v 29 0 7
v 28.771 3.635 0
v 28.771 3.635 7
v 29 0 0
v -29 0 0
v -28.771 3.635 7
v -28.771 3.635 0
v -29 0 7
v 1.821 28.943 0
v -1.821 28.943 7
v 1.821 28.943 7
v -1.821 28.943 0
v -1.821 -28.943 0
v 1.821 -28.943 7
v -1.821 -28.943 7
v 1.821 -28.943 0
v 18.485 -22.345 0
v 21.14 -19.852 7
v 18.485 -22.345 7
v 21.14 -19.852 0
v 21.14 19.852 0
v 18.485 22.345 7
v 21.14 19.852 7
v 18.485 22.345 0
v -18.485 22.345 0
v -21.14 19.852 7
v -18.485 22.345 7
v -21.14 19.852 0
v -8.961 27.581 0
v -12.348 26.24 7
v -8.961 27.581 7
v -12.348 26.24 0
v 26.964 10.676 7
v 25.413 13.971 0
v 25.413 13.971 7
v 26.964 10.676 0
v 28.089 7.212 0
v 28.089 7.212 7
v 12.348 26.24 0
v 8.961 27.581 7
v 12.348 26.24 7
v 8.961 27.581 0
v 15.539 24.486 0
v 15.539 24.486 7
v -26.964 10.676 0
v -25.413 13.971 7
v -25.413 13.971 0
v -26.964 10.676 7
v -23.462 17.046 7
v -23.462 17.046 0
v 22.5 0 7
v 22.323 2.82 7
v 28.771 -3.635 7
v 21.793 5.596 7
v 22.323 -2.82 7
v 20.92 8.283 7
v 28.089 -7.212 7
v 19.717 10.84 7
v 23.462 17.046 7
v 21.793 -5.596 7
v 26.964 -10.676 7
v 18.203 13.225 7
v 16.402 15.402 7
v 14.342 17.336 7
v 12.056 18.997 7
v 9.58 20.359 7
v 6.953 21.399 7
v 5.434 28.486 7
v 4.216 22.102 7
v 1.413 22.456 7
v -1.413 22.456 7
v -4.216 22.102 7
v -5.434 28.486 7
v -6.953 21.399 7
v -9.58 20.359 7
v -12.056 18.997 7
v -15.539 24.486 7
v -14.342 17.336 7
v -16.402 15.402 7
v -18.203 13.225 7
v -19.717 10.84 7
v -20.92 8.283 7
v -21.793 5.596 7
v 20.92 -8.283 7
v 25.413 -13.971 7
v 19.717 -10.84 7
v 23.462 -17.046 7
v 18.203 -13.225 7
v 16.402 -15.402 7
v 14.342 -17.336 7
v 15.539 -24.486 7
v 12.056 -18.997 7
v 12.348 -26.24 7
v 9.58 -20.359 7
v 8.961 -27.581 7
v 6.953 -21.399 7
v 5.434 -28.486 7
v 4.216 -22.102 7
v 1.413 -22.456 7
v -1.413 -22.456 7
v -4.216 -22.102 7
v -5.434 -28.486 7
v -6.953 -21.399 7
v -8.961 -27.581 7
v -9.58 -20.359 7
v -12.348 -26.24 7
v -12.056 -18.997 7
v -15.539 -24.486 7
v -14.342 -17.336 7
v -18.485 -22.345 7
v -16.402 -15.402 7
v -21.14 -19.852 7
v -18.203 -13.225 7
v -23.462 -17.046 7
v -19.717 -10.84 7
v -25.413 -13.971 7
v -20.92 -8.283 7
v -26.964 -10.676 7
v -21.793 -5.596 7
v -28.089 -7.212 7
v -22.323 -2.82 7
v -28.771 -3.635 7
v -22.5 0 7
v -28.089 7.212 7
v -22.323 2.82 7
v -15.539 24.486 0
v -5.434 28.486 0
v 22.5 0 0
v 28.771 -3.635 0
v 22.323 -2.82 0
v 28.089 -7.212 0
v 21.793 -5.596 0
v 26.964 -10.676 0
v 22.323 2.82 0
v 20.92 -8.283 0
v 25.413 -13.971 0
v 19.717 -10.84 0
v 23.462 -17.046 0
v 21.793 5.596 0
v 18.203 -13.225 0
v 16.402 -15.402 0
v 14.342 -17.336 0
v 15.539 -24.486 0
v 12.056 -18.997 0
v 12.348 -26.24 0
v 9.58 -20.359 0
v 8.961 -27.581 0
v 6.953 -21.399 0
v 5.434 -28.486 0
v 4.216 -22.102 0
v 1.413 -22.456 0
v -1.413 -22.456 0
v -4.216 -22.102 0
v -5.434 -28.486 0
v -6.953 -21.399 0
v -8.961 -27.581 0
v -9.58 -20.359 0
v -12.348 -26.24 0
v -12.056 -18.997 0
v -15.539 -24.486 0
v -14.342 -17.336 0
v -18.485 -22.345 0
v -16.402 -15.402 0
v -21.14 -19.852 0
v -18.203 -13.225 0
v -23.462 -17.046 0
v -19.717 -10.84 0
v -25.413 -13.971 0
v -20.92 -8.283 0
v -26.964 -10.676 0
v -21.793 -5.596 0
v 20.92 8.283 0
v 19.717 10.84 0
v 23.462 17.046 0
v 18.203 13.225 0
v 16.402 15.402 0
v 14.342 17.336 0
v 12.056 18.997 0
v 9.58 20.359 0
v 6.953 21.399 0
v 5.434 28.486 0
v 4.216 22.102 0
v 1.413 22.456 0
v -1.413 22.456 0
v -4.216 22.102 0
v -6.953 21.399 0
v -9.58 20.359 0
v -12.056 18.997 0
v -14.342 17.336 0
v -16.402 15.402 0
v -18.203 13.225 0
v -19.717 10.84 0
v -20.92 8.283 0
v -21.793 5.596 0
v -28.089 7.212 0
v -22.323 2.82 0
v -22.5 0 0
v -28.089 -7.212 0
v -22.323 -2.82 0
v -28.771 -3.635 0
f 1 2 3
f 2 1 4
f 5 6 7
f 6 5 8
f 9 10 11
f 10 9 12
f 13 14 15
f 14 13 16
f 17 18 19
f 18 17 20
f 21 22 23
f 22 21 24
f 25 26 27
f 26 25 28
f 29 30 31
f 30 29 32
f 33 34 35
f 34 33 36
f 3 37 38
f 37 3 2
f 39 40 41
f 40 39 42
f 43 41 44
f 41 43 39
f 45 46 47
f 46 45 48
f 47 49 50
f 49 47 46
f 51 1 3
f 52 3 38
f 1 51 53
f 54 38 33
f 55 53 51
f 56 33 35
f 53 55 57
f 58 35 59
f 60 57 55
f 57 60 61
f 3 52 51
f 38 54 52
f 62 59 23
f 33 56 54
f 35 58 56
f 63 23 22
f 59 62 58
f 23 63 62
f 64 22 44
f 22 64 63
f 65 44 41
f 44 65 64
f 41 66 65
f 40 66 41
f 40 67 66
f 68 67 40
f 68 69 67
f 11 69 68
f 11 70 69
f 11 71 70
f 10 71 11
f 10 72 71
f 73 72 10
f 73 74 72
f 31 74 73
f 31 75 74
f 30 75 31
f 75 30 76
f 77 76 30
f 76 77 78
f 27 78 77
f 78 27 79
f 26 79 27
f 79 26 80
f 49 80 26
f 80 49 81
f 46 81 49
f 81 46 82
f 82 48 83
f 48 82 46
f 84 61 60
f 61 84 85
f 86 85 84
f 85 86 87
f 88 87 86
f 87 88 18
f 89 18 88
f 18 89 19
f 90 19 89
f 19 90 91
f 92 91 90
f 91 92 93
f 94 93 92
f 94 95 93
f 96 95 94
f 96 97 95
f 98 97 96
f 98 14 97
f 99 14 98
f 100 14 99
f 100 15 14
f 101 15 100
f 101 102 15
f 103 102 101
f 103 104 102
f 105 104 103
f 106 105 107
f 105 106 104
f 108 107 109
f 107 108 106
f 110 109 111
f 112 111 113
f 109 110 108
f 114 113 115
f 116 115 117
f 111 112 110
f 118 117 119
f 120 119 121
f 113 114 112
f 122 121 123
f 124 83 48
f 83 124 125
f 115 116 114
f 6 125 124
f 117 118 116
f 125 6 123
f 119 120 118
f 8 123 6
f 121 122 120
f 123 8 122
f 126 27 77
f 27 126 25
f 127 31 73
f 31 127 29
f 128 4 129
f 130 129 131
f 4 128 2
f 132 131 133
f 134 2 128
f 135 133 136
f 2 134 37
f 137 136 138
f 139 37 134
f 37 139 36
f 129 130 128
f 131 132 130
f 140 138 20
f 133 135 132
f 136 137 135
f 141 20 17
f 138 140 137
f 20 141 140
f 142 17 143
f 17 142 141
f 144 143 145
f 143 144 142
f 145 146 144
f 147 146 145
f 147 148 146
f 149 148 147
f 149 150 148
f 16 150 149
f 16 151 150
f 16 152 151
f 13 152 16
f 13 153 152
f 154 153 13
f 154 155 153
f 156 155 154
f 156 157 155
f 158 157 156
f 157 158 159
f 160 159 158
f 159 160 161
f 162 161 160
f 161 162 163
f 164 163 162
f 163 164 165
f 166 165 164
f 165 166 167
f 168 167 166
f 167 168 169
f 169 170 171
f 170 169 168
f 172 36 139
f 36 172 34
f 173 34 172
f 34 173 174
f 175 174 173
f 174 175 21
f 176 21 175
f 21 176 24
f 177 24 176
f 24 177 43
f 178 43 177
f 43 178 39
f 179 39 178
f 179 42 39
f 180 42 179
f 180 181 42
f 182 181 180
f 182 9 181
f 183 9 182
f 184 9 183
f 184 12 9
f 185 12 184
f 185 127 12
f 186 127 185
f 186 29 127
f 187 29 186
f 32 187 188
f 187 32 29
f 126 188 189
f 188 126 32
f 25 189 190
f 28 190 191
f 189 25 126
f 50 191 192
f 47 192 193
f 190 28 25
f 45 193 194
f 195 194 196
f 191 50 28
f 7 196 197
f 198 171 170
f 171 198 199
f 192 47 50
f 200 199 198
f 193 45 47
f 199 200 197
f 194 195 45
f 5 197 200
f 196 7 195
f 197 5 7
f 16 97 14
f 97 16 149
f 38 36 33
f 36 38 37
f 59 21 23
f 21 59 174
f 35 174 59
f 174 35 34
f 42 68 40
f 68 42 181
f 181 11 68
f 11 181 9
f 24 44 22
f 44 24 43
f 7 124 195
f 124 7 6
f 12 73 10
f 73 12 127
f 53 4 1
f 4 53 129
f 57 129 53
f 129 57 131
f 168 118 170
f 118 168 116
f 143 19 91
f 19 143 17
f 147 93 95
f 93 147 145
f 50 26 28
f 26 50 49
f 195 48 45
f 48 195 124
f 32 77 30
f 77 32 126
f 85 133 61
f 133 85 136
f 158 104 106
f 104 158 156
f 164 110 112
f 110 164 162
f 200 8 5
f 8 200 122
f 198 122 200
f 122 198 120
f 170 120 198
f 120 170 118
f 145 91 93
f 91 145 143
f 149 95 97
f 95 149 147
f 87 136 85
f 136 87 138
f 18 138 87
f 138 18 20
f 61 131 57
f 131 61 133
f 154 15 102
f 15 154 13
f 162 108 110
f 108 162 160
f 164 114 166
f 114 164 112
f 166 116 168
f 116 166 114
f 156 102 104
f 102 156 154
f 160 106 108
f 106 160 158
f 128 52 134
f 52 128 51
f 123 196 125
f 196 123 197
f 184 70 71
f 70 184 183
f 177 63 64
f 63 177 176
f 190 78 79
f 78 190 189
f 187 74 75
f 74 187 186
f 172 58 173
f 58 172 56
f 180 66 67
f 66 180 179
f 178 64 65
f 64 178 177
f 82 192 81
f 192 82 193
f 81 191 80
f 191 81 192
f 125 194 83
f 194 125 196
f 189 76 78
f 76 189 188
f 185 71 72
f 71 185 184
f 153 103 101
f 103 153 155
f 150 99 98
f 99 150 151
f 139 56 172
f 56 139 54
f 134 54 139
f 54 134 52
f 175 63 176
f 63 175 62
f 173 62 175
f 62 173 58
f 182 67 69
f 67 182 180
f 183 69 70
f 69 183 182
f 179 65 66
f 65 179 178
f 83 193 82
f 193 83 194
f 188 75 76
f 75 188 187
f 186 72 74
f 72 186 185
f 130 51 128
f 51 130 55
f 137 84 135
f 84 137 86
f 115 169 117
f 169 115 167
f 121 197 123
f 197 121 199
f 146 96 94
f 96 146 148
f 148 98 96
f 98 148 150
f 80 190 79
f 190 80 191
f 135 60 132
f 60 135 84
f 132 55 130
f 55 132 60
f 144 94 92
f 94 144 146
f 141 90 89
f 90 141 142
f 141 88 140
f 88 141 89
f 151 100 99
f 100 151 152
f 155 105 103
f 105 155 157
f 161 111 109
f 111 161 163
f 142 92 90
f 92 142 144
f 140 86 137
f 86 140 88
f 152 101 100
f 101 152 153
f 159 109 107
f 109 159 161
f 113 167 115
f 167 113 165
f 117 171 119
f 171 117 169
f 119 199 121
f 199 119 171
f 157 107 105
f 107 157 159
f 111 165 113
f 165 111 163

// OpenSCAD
$fn = 50;


difference() {
	union() {
		translate(v = [0, 0, 0]) {
			rotate(a = [0, 0, 0]) {
				cylinder(h = 7, r = 29.0000000000);
			}
		}
	}
	union() {
		translate(v = [0, 0, 0]) {
			rotate(a = [0, 0, 0]) {
				cylinder(h = 7, r = 22.5000000000);
			}
		}
	}
}
